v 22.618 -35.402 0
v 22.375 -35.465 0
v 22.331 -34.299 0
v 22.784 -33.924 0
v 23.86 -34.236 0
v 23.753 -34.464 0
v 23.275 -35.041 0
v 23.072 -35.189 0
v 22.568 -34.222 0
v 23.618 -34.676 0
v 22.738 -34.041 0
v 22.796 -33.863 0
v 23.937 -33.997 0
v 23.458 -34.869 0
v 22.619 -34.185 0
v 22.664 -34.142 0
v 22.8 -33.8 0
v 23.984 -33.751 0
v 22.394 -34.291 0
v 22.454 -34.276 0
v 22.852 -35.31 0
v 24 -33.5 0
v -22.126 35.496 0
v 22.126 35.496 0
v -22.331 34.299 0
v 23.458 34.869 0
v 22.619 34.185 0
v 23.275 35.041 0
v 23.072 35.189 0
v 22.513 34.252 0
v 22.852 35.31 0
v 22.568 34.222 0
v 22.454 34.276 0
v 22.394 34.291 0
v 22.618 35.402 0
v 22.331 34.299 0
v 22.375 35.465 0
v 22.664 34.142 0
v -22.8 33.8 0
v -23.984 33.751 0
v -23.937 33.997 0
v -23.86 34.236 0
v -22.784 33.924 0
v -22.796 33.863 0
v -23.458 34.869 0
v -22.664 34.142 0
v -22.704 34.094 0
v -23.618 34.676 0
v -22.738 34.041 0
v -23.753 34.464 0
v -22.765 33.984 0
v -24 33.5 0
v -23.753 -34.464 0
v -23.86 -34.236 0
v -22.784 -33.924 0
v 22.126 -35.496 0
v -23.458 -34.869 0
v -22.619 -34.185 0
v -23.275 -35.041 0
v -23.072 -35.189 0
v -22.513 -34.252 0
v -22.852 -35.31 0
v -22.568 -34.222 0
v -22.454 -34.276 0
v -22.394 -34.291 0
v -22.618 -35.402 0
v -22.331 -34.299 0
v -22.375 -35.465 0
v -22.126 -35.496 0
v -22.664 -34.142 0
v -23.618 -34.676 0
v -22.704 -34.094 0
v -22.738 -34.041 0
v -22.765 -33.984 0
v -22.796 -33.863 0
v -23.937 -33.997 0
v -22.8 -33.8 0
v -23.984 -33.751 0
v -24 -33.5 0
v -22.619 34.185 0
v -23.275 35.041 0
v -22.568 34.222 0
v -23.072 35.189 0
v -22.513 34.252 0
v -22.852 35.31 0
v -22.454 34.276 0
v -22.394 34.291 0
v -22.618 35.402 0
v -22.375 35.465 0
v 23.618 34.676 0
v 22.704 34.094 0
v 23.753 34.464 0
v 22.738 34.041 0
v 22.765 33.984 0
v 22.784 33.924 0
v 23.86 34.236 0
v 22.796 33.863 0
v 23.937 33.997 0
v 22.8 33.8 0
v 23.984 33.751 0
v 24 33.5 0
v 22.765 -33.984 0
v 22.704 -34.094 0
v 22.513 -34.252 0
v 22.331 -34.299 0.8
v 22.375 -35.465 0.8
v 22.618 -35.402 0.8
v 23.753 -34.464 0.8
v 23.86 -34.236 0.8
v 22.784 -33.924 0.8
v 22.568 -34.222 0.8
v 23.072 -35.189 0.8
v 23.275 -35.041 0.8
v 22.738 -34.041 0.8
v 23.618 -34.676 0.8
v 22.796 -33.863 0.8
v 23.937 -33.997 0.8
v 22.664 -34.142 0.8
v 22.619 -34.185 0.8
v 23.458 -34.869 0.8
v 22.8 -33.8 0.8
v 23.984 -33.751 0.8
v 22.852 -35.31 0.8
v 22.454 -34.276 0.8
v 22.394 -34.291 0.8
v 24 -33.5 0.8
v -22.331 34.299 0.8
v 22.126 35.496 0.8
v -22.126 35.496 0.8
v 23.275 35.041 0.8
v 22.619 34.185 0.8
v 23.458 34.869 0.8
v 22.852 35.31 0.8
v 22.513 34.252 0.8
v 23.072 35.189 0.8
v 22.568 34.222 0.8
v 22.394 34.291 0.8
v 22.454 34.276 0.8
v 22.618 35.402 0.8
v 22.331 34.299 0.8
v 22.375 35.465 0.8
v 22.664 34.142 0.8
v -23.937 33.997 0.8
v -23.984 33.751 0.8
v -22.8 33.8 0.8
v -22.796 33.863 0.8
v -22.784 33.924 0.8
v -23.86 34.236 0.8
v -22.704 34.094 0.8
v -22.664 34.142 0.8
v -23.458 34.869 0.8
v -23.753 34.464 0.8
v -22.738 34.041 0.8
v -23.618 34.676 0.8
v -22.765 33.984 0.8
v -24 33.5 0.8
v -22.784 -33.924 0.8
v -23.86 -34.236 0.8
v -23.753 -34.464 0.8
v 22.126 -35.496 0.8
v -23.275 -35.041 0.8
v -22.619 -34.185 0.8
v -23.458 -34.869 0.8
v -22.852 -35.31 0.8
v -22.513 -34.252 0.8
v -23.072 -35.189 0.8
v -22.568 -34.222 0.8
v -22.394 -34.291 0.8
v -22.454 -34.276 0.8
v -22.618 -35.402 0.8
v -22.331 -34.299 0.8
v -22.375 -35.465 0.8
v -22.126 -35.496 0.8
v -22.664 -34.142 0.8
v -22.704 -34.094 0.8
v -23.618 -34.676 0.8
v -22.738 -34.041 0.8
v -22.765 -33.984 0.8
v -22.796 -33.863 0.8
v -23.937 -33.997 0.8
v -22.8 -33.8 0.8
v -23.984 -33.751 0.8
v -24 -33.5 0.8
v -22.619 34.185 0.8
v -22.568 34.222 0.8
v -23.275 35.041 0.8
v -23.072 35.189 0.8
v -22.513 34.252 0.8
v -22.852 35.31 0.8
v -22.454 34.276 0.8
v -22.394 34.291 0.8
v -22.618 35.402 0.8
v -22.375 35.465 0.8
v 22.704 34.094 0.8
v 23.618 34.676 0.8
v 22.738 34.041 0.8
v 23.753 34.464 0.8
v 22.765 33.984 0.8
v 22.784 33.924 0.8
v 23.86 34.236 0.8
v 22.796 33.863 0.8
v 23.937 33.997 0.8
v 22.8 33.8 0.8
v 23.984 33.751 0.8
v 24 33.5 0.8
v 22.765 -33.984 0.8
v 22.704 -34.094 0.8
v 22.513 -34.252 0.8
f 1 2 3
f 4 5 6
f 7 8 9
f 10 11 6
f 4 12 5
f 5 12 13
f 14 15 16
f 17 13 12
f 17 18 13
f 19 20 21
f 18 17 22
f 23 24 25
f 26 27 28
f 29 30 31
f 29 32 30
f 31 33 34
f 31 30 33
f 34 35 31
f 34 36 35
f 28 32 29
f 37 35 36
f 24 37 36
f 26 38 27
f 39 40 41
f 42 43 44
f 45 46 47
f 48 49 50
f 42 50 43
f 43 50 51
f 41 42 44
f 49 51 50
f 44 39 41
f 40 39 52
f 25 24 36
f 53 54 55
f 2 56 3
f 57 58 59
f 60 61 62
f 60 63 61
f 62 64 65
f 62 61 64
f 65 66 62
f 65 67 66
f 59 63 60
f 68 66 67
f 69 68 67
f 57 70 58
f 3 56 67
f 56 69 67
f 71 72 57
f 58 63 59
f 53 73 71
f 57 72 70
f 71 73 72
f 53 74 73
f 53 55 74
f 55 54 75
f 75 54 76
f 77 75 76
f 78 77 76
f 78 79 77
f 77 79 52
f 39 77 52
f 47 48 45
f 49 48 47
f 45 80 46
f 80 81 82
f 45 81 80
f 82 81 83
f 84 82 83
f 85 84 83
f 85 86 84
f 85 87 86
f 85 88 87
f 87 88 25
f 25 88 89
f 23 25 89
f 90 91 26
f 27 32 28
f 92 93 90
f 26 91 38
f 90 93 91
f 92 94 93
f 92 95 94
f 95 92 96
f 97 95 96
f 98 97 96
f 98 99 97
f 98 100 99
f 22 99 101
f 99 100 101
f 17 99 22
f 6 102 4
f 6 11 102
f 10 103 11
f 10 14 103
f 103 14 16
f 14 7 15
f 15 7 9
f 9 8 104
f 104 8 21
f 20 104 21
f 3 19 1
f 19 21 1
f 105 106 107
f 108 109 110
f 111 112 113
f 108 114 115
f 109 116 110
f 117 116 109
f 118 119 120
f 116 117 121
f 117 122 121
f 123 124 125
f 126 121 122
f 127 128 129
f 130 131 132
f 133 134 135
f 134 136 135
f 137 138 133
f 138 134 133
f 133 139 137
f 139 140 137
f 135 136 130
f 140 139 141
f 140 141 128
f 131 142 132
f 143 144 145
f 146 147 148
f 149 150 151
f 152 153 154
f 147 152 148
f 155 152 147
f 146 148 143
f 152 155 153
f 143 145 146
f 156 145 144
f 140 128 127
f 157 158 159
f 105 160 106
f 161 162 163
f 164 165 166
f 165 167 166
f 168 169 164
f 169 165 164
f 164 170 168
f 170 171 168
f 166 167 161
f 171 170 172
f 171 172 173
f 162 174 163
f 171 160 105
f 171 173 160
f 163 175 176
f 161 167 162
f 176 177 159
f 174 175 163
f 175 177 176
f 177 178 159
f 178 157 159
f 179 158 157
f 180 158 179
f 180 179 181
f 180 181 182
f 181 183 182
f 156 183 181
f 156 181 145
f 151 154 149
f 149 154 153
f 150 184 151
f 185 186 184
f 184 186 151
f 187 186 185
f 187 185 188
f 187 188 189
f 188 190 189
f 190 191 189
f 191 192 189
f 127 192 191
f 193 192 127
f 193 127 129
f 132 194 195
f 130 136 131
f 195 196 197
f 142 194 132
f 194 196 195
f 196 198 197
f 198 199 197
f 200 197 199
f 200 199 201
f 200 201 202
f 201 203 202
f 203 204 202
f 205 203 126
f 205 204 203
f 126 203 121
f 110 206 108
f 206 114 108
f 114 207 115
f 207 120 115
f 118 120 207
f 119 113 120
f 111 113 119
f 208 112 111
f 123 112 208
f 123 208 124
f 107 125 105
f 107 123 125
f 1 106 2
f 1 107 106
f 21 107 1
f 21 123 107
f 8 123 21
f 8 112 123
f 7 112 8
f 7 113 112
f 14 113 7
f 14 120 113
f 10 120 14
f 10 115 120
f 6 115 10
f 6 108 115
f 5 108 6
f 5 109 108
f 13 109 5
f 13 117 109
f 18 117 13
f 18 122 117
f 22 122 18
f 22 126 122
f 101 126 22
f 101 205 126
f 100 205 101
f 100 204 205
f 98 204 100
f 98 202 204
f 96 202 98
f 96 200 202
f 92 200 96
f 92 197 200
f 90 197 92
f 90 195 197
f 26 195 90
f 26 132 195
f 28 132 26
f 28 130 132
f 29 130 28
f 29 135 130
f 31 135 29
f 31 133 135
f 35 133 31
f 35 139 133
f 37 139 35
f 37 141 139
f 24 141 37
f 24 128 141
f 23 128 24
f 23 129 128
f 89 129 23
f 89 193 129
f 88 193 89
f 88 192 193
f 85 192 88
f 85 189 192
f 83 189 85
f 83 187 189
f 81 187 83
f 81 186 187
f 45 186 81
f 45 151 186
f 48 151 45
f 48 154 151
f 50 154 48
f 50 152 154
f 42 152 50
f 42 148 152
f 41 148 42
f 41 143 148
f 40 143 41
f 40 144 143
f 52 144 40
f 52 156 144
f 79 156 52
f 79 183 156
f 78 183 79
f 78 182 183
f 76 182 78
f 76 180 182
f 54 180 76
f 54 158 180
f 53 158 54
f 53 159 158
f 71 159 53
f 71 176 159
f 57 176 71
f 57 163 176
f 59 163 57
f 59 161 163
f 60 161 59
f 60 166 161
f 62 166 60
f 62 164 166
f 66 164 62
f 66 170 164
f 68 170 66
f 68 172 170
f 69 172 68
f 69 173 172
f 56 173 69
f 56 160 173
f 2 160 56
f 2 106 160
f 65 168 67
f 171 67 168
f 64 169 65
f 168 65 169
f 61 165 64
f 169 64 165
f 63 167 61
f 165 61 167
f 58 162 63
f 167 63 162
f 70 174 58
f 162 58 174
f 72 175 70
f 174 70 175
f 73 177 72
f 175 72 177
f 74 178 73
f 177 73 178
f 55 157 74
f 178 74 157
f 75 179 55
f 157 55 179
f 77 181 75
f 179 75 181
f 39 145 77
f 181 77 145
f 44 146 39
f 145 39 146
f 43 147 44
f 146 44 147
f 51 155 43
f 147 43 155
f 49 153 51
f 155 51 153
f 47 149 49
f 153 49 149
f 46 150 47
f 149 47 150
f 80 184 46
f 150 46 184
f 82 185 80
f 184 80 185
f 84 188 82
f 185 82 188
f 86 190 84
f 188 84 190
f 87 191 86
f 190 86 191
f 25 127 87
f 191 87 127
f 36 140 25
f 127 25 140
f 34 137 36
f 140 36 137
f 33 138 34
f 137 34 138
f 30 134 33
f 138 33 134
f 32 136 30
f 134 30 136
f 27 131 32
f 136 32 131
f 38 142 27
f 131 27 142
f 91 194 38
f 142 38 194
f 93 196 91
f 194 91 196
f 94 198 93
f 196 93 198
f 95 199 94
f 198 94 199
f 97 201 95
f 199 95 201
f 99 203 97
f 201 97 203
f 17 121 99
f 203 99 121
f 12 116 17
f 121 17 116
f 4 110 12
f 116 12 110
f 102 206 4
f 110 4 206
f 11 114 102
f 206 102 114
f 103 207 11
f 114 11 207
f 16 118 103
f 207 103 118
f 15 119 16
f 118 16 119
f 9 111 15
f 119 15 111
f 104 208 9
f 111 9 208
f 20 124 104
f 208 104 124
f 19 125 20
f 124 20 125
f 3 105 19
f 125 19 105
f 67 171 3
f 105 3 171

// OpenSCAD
width = 48;
length = 71;

height = 4 * 0.2;
seal_width = 3 * 0.4;
outer_corner_radius = 2;
inner_corner_radius = 0.5;

$fn = 50;

linear_extrude(height) {
    difference() {
        minkowski() {
            square([width  - 2 * outer_corner_radius,
                    length - 2 * outer_corner_radius],
                   center = true);
            circle(outer_corner_radius);
        }
        
        minkowski() {
            square([width  - 2 * seal_width - 2 * inner_corner_radius,
                    length - 2 * seal_width - 2 * inner_corner_radius],
                   center = true);
            circle(inner_corner_radius);
        }
    }
}
